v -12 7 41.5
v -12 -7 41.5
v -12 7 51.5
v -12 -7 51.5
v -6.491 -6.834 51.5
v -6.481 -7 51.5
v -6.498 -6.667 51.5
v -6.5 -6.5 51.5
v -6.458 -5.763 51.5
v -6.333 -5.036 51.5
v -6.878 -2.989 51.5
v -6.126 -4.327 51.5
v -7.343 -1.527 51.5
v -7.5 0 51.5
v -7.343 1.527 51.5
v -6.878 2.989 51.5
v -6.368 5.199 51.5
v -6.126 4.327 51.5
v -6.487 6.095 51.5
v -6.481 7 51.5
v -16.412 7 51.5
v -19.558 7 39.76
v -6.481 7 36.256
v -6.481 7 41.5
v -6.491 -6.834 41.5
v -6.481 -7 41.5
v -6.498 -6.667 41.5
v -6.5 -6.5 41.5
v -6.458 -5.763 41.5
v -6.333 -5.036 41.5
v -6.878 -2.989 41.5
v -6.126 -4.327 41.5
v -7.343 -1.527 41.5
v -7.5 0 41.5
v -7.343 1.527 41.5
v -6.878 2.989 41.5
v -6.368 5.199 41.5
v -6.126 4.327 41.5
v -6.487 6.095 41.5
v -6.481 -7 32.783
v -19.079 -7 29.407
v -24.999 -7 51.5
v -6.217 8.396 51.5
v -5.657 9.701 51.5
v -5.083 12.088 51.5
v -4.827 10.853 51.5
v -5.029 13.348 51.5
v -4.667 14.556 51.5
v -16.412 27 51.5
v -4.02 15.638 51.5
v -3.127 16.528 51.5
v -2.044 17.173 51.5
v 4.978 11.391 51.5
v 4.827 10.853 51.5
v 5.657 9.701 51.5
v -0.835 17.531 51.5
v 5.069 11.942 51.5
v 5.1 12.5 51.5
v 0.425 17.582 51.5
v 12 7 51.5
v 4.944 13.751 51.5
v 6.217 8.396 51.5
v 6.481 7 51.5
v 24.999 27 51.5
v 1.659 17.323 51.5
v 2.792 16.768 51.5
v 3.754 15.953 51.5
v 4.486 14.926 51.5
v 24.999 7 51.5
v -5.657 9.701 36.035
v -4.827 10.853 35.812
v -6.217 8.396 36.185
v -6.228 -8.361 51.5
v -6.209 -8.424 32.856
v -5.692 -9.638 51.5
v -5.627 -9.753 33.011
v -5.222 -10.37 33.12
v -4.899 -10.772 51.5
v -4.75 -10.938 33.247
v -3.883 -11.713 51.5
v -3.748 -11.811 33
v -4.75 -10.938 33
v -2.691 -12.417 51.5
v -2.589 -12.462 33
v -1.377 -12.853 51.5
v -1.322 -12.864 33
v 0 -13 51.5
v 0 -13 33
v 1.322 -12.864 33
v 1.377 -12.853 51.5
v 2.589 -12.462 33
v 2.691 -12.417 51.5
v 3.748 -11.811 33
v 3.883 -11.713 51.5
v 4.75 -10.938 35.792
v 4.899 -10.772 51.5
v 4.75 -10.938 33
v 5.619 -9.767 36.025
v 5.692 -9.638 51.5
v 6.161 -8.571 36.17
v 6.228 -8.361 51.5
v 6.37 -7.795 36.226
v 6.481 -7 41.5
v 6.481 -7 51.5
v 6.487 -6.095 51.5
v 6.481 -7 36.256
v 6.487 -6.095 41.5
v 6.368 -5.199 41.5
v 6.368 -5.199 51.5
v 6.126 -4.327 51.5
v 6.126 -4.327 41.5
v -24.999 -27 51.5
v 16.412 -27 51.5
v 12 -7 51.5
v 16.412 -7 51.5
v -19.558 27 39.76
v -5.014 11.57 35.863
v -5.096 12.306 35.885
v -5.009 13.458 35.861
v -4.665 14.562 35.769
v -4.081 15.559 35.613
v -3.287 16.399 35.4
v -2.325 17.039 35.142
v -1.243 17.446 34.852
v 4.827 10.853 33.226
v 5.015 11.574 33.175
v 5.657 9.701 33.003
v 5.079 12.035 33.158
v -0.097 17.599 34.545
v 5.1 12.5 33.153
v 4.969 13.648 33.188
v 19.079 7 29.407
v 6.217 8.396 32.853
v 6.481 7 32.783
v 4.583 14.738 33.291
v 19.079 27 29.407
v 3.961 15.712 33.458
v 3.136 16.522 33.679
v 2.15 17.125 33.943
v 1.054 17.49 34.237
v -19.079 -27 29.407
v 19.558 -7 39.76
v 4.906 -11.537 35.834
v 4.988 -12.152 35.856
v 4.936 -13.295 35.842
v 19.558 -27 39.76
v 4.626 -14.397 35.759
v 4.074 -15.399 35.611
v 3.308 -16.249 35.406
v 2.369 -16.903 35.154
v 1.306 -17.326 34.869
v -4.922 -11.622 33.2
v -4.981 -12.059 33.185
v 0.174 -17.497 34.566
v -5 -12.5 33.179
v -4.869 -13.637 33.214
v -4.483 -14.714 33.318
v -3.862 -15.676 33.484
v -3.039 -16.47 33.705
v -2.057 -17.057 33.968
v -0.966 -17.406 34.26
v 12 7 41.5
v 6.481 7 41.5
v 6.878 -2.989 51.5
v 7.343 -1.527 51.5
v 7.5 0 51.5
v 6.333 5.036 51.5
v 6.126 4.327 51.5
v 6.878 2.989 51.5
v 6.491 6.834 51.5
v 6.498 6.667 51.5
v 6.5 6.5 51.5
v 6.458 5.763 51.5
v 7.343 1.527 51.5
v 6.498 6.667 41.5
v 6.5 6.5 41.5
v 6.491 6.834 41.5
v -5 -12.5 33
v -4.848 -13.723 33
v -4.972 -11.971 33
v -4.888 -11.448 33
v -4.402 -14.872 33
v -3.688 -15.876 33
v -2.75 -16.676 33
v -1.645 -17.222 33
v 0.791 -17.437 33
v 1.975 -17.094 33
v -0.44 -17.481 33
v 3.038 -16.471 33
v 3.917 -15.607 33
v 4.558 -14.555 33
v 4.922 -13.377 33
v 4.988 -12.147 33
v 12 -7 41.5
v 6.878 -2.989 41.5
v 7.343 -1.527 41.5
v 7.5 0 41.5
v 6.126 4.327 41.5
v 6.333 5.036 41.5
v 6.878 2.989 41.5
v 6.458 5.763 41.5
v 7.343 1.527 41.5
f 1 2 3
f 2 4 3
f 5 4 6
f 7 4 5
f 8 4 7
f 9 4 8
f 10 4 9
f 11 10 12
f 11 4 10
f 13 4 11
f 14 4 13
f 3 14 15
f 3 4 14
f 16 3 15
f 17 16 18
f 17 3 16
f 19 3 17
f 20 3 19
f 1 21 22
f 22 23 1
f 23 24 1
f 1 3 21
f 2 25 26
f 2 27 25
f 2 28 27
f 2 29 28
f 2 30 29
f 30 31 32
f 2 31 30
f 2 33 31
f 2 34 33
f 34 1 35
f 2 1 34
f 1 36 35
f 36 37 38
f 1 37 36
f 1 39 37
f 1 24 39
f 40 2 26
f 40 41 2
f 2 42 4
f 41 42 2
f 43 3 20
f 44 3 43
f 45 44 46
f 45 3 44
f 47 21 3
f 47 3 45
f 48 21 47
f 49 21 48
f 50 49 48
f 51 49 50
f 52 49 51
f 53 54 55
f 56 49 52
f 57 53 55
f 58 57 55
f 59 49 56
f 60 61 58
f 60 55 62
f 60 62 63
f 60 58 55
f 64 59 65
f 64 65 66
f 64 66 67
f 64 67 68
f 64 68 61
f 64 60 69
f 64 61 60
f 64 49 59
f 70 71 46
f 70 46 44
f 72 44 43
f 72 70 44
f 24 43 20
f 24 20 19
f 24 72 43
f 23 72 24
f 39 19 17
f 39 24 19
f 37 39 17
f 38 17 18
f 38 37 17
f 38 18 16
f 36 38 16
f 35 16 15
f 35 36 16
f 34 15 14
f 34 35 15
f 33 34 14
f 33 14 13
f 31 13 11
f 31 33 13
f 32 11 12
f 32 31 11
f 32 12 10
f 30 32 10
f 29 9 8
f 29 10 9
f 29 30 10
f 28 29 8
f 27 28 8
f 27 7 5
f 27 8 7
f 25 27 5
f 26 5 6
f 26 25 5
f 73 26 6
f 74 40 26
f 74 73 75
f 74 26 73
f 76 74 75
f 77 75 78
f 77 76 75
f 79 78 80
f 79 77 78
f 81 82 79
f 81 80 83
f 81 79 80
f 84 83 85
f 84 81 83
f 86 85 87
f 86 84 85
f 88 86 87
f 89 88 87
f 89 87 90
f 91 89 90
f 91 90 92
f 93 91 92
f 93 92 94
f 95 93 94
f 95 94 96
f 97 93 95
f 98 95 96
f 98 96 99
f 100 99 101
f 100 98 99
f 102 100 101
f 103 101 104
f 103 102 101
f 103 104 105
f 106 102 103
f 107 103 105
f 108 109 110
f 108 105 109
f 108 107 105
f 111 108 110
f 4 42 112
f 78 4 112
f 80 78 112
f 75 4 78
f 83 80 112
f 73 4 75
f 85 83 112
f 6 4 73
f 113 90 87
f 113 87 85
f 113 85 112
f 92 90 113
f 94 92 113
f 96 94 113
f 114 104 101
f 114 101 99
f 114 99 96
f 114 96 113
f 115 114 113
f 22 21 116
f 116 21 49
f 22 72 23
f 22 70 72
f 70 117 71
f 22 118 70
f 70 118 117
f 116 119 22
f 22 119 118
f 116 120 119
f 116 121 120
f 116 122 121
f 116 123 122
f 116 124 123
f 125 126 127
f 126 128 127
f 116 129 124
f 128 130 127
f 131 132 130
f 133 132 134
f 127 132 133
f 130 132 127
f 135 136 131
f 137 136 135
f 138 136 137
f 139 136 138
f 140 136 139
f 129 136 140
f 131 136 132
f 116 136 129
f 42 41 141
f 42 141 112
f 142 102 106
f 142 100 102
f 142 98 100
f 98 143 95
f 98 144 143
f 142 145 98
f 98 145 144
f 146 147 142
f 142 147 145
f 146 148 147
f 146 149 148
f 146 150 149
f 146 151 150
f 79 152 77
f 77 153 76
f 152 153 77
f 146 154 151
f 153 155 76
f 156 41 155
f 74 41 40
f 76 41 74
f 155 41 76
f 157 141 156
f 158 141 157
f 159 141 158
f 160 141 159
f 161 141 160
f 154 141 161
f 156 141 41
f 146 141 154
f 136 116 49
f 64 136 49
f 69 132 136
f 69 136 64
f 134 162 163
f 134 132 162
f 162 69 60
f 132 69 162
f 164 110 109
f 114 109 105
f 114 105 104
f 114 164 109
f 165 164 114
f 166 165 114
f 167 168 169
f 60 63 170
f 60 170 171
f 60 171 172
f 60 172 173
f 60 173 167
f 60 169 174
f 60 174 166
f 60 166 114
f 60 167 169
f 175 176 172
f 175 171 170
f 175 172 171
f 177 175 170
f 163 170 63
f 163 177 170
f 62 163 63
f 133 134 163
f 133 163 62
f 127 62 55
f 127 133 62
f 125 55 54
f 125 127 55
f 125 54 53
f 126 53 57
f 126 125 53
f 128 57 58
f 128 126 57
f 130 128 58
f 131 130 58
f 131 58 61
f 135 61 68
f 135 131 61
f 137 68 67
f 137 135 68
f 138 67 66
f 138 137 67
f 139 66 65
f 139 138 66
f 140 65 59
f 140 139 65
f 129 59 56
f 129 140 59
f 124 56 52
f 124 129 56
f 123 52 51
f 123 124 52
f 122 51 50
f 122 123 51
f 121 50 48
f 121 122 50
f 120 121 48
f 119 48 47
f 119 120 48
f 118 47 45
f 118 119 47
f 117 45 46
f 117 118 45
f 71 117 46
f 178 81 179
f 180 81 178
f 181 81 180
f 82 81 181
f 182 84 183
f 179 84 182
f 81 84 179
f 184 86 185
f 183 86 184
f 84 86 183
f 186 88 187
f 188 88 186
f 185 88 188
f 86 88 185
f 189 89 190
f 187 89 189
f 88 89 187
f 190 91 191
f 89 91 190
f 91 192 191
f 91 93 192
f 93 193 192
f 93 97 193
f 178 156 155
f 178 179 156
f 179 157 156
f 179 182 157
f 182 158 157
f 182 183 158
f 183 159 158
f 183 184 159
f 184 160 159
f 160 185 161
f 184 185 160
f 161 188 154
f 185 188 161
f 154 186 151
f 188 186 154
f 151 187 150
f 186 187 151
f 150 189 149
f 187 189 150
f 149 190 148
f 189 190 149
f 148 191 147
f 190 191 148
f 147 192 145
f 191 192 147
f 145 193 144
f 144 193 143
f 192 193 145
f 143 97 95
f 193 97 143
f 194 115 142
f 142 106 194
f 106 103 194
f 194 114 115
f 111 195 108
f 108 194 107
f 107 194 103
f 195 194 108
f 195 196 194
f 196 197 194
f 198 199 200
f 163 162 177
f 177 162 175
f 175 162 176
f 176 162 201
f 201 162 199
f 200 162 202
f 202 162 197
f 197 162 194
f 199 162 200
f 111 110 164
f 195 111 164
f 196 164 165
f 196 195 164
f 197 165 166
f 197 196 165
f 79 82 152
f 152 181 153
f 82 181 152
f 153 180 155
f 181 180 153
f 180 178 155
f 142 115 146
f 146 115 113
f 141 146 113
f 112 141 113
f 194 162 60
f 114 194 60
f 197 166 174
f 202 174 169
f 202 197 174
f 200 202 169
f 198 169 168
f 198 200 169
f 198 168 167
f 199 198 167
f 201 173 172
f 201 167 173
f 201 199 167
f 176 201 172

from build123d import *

# Parameters (mm, degrees)
CYLINDER012_R             = 5.1
CYLINDER012_DEPTH         = 50
CYLINDER007_R             = 7.5
CYLINDER007_DEPTH         = 70
CYLINDER009_R             = 6.5
CYLINDER009_DEPTH         = 70
CYLINDER010_R             = 7.5
CYLINDER010_DEPTH         = 70
CYLINDER011_R             = 6.5
CYLINDER011_DEPTH         = 70
FUSION007_PLACEMENT_ANGLE = 180
CYLINDER008_R             = 5.1
CYLINDER008_DEPTH         = 70
BOX003_W                  = 57
BOX003_H                  = 59
BOX003_DEPTH              = 20
CYLINDER004_R             = 6.35
CYLINDER004_DEPTH         = 50
BOX_W                     = 40
BOX_H                     = 20
BOX_DEPTH                 = 30
BOX_PLACEMENT_ANGLE       = 15
CYLINDER001_R             = 5
CYLINDER001_DEPTH         = 50
CYLINDER006_R             = 6.35
CYLINDER006_DEPTH         = 50
BOX001_W                  = 40
BOX001_H                  = 20
BOX001_DEPTH              = 30
BOX001_PLACEMENT_ANGLE    = 15
CYLINDER005_R             = 5
CYLINDER005_DEPTH         = 50
FUSION003_PLACEMENT_ANGLE = 180
BOX002_W                  = 24
BOX002_H                  = 39
BOX002_DEPTH              = 10


with BuildPart() as bevilpin005:
    # Cylinder012 → Cylinder012 (new body)
    with BuildSketch(Plane(origin=(0, -12.5, -17), x_dir=(1, 0, 0), z_dir=(0, 0, 1))):
        Circle(CYLINDER012_R)
    extrude(amount=CYLINDER012_DEPTH)


with BuildPart() as bevilpin003:
    # Cylinder007 → Cylinder007 (new body)
    with BuildSketch(Plane.XY):
        Circle(CYLINDER007_R)
    extrude(amount=CYLINDER007_DEPTH)


with BuildPart() as fusion006:
    # Cylinder009 → Cylinder009 (new body)
    with BuildSketch(Plane(origin=(0, 6.5, 0), x_dir=(1, 0, 0), z_dir=(0, 0, 1))):
        Circle(CYLINDER009_R)
    extrude(amount=CYLINDER009_DEPTH)

    # Fusion006: union bevilPin003
    add(bevilpin003.part)


with BuildPart() as bevilpin004:
    # Cylinder010 → Cylinder010 (new body)
    with BuildSketch(Plane.XY):
        Circle(CYLINDER010_R)
    extrude(amount=CYLINDER010_DEPTH)


with BuildPart() as fusion008:
    # Cylinder011 → Cylinder011 (new body)
    with BuildSketch(Plane(origin=(0, 6.5, 0), x_dir=(1, 0, 0), z_dir=(0, 0, 1))):
        Circle(CYLINDER011_R)
    extrude(amount=CYLINDER011_DEPTH)

    # Fusion007: union bevilPin004
    add(bevilpin004.part)


with BuildPart() as fusion008_1:
    # Fusion007 placement: moved
    add(fusion008.part.rotate(Axis((0, 0, 0), (0, 0, 1)), FUSION007_PLACEMENT_ANGLE))

    # Fusion008: union Fusion006
    add(fusion006.part)


with BuildPart() as cylinder008:
    # Cylinder008 → Cylinder008 (new body)
    with BuildSketch(Plane(origin=(0, 12.5, 0), x_dir=(1, 0, 0), z_dir=(0, 0, 1))):
        Circle(CYLINDER008_R)
    extrude(amount=CYLINDER008_DEPTH)


with BuildPart() as cube003:
    # Box003 → Box003 (new body)
    with BuildSketch(Plane(origin=(-29.5, -29, 51.5), x_dir=(1, 0, 0), z_dir=(0, 0, 1))):
        with Locations((28.5, 29.5)):
            Rectangle(BOX003_W, BOX003_H)
    extrude(amount=BOX003_DEPTH)


with BuildPart() as bevilpin001:
    # Cylinder004 → Cylinder004 (new body)
    with BuildSketch(Plane.XY):
        Circle(CYLINDER004_R)
    extrude(amount=CYLINDER004_DEPTH)


with BuildPart() as cube:
    # Box → Box (new body)
    with BuildSketch(Plane.XY):
        with Locations((20, 10)):
            Rectangle(BOX_W, BOX_H)
    extrude(amount=BOX_DEPTH)


with BuildPart() as cube_1:
    # Box placement: moved
    add(cube.part.moved(Location((-19.558238, 7, 39.759763))).rotate(Axis((-19.558238, 7, 39.759763), (0, 1, 0)), BOX_PLACEMENT_ANGLE))


with BuildPart() as fusion001:
    # Cylinder001 → Cylinder001 (new body)
    with BuildSketch(Plane(origin=(0, 12.5, 0), x_dir=(1, 0, 0), z_dir=(0, 0, 1))):
        Circle(CYLINDER001_R)
    extrude(amount=CYLINDER001_DEPTH)

    # Fusion: union Cube
    add(cube_1.part)

    # Fusion001: union bevilPin001
    add(bevilpin001.part)


with BuildPart() as bevilpin002:
    # Cylinder006 → Cylinder006 (new body)
    with BuildSketch(Plane.XY):
        Circle(CYLINDER006_R)
    extrude(amount=CYLINDER006_DEPTH)


with BuildPart() as cube001:
    # Box001 → Box001 (new body)
    with BuildSketch(Plane.XY):
        with Locations((20, 10)):
            Rectangle(BOX001_W, BOX001_H)
    extrude(amount=BOX001_DEPTH)


with BuildPart() as cube001_1:
    # Box001 placement: moved
    add(cube001.part.moved(Location((-19.558238, 7, 39.759763))).rotate(Axis((-19.558238, 7, 39.759763), (0, 1, 0)), BOX001_PLACEMENT_ANGLE))


with BuildPart() as fusion004:
    # Cylinder005 → Cylinder005 (new body)
    with BuildSketch(Plane(origin=(0, 12.5, 0), x_dir=(1, 0, 0), z_dir=(0, 0, 1))):
        Circle(CYLINDER005_R)
    extrude(amount=CYLINDER005_DEPTH)

    # Fusion002: union Cube001
    add(cube001_1.part)

    # Fusion003: union bevilPin002
    add(bevilpin002.part)


with BuildPart() as fusion004_1:
    # Fusion003 placement: moved
    add(fusion004.part.rotate(Axis((0, 0, 0), (0, 0, 1)), FUSION003_PLACEMENT_ANGLE))

    # Fusion004: union Fusion001
    add(fusion001.part)


with BuildPart() as cut003:
    # Box002 → Box002 (new body)
    with BuildSketch(Plane(origin=(-12, -13, 41.5), x_dir=(1, 0, 0), z_dir=(0, 0, 1))):
        with Locations((12, 19.5)):
            Rectangle(BOX002_W, BOX002_H)
    extrude(amount=BOX002_DEPTH)

    # Fusion005: union Fusion004
    add(fusion004_1.part)

    # Cut: cut Cube003
    add(cube003.part, mode=Mode.SUBTRACT)

    # Cut001: cut Cylinder008
    add(cylinder008.part, mode=Mode.SUBTRACT)

    # Cut002: cut Fusion008
    add(fusion008_1.part, mode=Mode.SUBTRACT)

    # Cut003: cut bevilPin005
    add(bevilpin005.part, mode=Mode.SUBTRACT)


solid = cut003.part
